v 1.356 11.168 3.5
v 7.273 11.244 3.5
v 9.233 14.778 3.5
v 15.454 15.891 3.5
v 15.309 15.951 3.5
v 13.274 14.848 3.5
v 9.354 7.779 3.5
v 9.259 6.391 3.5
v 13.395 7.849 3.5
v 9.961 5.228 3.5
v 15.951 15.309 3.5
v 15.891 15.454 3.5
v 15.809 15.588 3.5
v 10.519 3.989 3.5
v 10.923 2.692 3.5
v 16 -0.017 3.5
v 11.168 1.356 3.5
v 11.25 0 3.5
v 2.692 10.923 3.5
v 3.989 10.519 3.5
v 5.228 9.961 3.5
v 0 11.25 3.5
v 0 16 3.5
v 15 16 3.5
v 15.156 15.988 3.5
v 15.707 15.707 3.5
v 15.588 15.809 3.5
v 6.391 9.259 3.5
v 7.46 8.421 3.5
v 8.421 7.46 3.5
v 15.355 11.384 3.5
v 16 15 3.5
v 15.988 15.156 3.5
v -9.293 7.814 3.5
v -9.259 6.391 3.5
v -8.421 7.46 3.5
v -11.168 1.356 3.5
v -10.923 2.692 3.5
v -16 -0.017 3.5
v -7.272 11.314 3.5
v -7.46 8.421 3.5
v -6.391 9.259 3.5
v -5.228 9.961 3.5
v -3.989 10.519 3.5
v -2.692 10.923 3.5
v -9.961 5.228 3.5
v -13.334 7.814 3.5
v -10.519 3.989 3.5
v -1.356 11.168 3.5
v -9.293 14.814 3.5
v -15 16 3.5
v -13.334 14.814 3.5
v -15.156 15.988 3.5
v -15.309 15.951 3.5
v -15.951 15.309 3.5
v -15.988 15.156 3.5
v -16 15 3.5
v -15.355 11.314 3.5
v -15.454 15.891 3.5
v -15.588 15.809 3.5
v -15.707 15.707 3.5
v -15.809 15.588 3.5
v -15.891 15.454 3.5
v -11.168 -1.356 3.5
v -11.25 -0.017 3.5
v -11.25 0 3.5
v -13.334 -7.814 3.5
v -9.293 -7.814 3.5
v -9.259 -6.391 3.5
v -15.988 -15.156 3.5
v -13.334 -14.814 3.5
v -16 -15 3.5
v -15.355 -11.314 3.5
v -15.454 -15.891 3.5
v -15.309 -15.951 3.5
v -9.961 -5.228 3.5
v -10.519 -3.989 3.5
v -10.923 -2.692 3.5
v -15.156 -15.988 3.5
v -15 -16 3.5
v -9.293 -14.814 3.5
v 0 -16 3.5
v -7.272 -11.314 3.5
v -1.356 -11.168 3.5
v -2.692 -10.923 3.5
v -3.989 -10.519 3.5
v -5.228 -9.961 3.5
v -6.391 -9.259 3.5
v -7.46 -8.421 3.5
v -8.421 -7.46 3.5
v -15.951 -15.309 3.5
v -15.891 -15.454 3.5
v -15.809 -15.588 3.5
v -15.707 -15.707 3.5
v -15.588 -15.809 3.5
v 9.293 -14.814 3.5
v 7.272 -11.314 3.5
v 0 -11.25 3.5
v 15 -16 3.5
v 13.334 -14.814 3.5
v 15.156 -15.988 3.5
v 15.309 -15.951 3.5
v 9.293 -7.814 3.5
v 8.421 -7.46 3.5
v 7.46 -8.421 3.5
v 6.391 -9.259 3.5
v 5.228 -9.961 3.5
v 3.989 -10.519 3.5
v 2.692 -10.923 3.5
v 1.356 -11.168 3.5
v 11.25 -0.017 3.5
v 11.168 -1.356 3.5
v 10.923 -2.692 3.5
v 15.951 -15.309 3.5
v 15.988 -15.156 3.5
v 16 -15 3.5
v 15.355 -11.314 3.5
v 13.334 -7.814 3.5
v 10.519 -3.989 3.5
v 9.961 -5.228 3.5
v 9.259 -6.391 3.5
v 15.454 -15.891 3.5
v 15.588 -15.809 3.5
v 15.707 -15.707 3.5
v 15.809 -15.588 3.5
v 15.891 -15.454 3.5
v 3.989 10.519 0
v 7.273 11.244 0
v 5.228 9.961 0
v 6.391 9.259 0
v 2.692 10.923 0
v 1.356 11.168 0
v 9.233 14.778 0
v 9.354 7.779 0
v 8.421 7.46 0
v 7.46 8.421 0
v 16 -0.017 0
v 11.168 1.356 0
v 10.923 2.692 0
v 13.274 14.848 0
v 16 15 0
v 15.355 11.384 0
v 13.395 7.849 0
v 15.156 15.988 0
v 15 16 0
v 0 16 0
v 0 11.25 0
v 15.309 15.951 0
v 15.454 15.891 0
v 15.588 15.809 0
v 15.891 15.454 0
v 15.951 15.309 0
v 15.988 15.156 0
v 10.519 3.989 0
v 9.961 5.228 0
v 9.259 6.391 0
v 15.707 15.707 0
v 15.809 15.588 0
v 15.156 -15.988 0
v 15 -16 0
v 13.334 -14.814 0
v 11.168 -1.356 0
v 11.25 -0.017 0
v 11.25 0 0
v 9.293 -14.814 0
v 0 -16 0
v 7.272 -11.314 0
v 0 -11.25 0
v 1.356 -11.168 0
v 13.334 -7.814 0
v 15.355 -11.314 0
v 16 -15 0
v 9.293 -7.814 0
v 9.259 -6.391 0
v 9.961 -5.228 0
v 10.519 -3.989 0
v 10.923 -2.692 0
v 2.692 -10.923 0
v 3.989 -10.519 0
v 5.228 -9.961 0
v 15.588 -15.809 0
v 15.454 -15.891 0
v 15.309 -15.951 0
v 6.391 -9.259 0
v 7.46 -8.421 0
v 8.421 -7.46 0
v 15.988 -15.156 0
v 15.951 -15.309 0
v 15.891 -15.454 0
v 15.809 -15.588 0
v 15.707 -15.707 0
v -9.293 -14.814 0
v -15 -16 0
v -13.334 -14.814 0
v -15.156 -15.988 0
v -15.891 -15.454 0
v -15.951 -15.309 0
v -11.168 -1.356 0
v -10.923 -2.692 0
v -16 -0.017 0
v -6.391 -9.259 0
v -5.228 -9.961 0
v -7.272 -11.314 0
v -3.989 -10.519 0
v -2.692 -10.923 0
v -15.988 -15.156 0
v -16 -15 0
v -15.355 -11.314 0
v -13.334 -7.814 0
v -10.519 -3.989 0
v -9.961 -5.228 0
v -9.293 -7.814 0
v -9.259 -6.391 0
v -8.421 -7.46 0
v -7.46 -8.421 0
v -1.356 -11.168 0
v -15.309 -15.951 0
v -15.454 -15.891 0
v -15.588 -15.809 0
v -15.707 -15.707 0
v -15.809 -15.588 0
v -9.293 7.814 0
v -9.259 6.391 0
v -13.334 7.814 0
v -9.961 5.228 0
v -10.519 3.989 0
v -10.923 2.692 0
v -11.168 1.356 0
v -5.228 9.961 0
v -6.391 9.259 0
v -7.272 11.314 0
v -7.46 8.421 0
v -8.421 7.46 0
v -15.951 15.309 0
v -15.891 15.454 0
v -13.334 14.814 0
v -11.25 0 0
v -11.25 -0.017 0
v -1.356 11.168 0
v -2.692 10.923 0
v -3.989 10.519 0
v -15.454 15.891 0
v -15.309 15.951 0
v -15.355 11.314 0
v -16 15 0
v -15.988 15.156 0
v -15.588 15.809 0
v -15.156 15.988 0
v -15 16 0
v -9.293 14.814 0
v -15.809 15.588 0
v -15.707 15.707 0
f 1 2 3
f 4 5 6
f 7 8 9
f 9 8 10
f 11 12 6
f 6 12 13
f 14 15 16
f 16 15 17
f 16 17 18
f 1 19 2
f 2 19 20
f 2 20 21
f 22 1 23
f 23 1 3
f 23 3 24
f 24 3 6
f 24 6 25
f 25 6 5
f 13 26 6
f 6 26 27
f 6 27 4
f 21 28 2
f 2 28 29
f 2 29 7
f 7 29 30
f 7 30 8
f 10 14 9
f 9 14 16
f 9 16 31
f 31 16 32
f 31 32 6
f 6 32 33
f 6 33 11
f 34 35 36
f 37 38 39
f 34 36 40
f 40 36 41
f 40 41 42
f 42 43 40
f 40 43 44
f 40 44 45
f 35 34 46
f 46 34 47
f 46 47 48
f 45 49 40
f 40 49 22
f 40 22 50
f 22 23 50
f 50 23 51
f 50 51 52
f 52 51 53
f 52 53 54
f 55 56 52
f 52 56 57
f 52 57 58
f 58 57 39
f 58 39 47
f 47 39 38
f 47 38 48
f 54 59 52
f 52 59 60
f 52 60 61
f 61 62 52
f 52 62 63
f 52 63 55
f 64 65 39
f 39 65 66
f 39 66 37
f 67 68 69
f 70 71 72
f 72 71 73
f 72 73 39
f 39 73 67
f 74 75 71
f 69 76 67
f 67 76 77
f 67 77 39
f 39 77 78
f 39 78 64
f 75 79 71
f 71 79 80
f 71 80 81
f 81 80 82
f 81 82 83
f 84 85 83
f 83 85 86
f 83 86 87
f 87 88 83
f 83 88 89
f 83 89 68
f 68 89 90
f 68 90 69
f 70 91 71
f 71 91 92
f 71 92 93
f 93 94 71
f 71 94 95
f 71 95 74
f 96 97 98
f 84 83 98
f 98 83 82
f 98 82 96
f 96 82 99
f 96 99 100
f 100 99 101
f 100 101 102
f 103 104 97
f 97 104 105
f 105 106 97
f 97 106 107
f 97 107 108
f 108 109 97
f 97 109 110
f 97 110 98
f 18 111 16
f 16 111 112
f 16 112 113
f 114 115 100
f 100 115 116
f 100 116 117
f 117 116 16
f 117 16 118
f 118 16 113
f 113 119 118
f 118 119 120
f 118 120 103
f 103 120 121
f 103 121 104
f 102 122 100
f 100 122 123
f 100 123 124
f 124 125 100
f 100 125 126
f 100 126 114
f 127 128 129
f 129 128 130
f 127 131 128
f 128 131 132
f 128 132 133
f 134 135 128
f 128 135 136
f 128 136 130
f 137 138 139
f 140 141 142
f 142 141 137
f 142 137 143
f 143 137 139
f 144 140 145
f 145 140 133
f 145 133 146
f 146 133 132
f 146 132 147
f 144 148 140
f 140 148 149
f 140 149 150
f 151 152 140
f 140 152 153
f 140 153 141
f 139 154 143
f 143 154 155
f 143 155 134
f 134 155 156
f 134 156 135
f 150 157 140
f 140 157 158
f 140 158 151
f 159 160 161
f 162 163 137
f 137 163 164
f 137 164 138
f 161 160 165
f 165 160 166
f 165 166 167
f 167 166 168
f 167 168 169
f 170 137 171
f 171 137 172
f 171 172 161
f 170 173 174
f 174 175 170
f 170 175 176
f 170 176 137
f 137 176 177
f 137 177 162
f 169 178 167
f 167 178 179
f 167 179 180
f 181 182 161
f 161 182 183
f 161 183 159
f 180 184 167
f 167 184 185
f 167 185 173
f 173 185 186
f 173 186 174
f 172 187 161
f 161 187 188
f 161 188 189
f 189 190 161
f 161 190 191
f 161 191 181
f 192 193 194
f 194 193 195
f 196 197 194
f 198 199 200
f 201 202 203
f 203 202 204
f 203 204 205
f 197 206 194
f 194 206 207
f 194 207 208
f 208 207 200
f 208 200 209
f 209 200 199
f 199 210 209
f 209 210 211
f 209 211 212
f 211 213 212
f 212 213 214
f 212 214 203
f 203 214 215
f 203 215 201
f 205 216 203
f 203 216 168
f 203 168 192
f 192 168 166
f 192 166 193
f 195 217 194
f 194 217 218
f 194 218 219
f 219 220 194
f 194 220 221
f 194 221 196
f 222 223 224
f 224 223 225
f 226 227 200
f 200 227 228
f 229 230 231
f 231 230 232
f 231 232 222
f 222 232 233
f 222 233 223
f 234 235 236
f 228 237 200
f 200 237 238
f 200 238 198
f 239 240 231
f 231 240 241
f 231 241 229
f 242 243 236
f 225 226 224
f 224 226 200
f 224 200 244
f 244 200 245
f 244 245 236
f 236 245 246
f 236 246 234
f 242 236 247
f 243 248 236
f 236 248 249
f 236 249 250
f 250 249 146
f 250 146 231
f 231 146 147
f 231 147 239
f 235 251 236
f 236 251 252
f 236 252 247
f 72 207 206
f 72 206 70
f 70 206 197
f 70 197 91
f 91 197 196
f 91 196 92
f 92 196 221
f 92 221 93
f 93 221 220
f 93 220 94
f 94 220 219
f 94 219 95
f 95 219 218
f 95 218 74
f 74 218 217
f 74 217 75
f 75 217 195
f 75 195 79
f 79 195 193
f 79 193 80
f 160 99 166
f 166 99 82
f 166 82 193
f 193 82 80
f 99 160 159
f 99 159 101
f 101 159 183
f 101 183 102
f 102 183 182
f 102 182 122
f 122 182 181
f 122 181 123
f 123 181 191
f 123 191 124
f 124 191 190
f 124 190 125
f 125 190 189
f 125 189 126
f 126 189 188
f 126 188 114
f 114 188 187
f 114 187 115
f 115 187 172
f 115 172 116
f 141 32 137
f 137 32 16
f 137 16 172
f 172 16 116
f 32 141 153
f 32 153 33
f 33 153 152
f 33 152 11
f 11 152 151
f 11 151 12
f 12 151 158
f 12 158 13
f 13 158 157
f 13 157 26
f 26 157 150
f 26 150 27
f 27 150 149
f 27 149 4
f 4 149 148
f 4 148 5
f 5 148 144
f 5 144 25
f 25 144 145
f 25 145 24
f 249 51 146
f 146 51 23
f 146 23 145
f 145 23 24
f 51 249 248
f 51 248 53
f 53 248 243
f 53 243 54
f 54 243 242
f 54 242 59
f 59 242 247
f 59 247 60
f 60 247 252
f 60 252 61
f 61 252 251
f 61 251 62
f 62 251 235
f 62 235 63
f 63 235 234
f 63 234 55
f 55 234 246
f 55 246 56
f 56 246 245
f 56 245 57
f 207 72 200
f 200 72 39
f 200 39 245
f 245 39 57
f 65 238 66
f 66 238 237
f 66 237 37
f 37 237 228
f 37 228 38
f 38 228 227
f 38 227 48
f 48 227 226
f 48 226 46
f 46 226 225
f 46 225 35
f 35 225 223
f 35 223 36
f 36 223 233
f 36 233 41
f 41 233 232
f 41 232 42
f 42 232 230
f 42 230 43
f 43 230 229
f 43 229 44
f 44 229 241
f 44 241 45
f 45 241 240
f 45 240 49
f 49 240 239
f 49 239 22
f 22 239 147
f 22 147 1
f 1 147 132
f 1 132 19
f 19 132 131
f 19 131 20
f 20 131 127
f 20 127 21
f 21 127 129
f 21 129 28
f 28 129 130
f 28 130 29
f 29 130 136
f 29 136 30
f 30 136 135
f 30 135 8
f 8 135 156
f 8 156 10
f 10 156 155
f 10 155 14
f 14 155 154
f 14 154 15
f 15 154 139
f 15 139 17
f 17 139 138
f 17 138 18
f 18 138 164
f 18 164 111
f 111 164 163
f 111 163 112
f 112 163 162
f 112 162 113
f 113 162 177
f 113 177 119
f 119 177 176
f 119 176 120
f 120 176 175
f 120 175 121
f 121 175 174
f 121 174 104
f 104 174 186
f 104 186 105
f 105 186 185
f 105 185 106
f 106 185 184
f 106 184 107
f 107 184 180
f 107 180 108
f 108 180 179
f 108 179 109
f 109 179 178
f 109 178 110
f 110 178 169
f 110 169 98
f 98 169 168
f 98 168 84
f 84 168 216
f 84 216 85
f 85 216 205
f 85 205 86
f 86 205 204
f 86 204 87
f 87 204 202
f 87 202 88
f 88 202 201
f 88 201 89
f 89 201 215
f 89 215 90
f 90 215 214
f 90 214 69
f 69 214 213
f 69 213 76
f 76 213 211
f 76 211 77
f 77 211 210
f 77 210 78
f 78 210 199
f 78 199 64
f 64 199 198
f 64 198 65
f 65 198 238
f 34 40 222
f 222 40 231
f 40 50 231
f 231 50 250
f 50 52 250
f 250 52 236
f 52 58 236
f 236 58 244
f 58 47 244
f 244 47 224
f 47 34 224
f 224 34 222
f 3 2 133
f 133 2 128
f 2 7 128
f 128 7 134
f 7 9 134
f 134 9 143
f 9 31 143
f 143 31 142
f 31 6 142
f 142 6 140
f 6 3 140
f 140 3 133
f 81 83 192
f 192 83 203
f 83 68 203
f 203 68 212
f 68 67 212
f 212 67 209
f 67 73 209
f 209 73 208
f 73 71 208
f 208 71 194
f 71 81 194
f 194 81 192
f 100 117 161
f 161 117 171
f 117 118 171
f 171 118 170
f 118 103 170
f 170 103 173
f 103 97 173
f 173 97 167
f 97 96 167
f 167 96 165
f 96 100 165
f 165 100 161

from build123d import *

# Parameters (mm, degrees)
SKETCH_1_R      = 11.25
EXTRUDE_2_DEPTH = 3.5


with BuildPart() as part:
    # Эскиз1 → Бобышка-Вытянуть2 (new body)
    with BuildSketch(Plane.XY):
        with BuildLine():
            Line((-15, 16), (15, 16))
            ThreePointArc((15, 16), (15.707106781, 15.707106781), (16, 15))
            Line((16, 15), (16, -15))
            ThreePointArc((16, -15), (15.707106781, -15.707106781), (15, -16))
            Line((15, -16), (-15, -16))
            ThreePointArc((-15, -16), (-15.707106781, -15.707106781), (-16, -15))
            Line((-16, -15), (-16, 15))
            ThreePointArc((-16, 15), (-15.707106781, 15.707106781), (-15, 16))
        make_face()
        Circle(SKETCH_1_R, mode=Mode.SUBTRACT)
        Polygon((-7.272256615, 11.313708499), (-9.292982557, 14.813708499), (-13.334434441, 14.813708499), (-15.355160383, 11.313708499), (-13.334434441, 7.813708499), (-9.292982557, 7.813708499), align=None, mode=Mode.SUBTRACT)
        Polygon((7.272859896, 11.243880856), (9.353756711, 7.779317134), (13.394605314, 7.849144778), (15.354557102, 11.383536142), (13.273660287, 14.848099864), (9.232811684, 14.77827222), align=None, mode=Mode.SUBTRACT)
        Polygon((-7.272256615, -11.313708499), (-9.292982557, -7.813708499), (-13.334434441, -7.813708499), (-15.355160383, -11.313708499), (-13.334434441, -14.813708499), (-9.292982557, -14.813708499), align=None, mode=Mode.SUBTRACT)
        Polygon((15.355160383, -11.313708499), (13.334434441, -7.813708499), (9.292982557, -7.813708499), (7.272256615, -11.313708499), (9.292982557, -14.813708499), (13.334434441, -14.813708499), align=None, mode=Mode.SUBTRACT)
    extrude(amount=EXTRUDE_2_DEPTH)


solid = part.part
